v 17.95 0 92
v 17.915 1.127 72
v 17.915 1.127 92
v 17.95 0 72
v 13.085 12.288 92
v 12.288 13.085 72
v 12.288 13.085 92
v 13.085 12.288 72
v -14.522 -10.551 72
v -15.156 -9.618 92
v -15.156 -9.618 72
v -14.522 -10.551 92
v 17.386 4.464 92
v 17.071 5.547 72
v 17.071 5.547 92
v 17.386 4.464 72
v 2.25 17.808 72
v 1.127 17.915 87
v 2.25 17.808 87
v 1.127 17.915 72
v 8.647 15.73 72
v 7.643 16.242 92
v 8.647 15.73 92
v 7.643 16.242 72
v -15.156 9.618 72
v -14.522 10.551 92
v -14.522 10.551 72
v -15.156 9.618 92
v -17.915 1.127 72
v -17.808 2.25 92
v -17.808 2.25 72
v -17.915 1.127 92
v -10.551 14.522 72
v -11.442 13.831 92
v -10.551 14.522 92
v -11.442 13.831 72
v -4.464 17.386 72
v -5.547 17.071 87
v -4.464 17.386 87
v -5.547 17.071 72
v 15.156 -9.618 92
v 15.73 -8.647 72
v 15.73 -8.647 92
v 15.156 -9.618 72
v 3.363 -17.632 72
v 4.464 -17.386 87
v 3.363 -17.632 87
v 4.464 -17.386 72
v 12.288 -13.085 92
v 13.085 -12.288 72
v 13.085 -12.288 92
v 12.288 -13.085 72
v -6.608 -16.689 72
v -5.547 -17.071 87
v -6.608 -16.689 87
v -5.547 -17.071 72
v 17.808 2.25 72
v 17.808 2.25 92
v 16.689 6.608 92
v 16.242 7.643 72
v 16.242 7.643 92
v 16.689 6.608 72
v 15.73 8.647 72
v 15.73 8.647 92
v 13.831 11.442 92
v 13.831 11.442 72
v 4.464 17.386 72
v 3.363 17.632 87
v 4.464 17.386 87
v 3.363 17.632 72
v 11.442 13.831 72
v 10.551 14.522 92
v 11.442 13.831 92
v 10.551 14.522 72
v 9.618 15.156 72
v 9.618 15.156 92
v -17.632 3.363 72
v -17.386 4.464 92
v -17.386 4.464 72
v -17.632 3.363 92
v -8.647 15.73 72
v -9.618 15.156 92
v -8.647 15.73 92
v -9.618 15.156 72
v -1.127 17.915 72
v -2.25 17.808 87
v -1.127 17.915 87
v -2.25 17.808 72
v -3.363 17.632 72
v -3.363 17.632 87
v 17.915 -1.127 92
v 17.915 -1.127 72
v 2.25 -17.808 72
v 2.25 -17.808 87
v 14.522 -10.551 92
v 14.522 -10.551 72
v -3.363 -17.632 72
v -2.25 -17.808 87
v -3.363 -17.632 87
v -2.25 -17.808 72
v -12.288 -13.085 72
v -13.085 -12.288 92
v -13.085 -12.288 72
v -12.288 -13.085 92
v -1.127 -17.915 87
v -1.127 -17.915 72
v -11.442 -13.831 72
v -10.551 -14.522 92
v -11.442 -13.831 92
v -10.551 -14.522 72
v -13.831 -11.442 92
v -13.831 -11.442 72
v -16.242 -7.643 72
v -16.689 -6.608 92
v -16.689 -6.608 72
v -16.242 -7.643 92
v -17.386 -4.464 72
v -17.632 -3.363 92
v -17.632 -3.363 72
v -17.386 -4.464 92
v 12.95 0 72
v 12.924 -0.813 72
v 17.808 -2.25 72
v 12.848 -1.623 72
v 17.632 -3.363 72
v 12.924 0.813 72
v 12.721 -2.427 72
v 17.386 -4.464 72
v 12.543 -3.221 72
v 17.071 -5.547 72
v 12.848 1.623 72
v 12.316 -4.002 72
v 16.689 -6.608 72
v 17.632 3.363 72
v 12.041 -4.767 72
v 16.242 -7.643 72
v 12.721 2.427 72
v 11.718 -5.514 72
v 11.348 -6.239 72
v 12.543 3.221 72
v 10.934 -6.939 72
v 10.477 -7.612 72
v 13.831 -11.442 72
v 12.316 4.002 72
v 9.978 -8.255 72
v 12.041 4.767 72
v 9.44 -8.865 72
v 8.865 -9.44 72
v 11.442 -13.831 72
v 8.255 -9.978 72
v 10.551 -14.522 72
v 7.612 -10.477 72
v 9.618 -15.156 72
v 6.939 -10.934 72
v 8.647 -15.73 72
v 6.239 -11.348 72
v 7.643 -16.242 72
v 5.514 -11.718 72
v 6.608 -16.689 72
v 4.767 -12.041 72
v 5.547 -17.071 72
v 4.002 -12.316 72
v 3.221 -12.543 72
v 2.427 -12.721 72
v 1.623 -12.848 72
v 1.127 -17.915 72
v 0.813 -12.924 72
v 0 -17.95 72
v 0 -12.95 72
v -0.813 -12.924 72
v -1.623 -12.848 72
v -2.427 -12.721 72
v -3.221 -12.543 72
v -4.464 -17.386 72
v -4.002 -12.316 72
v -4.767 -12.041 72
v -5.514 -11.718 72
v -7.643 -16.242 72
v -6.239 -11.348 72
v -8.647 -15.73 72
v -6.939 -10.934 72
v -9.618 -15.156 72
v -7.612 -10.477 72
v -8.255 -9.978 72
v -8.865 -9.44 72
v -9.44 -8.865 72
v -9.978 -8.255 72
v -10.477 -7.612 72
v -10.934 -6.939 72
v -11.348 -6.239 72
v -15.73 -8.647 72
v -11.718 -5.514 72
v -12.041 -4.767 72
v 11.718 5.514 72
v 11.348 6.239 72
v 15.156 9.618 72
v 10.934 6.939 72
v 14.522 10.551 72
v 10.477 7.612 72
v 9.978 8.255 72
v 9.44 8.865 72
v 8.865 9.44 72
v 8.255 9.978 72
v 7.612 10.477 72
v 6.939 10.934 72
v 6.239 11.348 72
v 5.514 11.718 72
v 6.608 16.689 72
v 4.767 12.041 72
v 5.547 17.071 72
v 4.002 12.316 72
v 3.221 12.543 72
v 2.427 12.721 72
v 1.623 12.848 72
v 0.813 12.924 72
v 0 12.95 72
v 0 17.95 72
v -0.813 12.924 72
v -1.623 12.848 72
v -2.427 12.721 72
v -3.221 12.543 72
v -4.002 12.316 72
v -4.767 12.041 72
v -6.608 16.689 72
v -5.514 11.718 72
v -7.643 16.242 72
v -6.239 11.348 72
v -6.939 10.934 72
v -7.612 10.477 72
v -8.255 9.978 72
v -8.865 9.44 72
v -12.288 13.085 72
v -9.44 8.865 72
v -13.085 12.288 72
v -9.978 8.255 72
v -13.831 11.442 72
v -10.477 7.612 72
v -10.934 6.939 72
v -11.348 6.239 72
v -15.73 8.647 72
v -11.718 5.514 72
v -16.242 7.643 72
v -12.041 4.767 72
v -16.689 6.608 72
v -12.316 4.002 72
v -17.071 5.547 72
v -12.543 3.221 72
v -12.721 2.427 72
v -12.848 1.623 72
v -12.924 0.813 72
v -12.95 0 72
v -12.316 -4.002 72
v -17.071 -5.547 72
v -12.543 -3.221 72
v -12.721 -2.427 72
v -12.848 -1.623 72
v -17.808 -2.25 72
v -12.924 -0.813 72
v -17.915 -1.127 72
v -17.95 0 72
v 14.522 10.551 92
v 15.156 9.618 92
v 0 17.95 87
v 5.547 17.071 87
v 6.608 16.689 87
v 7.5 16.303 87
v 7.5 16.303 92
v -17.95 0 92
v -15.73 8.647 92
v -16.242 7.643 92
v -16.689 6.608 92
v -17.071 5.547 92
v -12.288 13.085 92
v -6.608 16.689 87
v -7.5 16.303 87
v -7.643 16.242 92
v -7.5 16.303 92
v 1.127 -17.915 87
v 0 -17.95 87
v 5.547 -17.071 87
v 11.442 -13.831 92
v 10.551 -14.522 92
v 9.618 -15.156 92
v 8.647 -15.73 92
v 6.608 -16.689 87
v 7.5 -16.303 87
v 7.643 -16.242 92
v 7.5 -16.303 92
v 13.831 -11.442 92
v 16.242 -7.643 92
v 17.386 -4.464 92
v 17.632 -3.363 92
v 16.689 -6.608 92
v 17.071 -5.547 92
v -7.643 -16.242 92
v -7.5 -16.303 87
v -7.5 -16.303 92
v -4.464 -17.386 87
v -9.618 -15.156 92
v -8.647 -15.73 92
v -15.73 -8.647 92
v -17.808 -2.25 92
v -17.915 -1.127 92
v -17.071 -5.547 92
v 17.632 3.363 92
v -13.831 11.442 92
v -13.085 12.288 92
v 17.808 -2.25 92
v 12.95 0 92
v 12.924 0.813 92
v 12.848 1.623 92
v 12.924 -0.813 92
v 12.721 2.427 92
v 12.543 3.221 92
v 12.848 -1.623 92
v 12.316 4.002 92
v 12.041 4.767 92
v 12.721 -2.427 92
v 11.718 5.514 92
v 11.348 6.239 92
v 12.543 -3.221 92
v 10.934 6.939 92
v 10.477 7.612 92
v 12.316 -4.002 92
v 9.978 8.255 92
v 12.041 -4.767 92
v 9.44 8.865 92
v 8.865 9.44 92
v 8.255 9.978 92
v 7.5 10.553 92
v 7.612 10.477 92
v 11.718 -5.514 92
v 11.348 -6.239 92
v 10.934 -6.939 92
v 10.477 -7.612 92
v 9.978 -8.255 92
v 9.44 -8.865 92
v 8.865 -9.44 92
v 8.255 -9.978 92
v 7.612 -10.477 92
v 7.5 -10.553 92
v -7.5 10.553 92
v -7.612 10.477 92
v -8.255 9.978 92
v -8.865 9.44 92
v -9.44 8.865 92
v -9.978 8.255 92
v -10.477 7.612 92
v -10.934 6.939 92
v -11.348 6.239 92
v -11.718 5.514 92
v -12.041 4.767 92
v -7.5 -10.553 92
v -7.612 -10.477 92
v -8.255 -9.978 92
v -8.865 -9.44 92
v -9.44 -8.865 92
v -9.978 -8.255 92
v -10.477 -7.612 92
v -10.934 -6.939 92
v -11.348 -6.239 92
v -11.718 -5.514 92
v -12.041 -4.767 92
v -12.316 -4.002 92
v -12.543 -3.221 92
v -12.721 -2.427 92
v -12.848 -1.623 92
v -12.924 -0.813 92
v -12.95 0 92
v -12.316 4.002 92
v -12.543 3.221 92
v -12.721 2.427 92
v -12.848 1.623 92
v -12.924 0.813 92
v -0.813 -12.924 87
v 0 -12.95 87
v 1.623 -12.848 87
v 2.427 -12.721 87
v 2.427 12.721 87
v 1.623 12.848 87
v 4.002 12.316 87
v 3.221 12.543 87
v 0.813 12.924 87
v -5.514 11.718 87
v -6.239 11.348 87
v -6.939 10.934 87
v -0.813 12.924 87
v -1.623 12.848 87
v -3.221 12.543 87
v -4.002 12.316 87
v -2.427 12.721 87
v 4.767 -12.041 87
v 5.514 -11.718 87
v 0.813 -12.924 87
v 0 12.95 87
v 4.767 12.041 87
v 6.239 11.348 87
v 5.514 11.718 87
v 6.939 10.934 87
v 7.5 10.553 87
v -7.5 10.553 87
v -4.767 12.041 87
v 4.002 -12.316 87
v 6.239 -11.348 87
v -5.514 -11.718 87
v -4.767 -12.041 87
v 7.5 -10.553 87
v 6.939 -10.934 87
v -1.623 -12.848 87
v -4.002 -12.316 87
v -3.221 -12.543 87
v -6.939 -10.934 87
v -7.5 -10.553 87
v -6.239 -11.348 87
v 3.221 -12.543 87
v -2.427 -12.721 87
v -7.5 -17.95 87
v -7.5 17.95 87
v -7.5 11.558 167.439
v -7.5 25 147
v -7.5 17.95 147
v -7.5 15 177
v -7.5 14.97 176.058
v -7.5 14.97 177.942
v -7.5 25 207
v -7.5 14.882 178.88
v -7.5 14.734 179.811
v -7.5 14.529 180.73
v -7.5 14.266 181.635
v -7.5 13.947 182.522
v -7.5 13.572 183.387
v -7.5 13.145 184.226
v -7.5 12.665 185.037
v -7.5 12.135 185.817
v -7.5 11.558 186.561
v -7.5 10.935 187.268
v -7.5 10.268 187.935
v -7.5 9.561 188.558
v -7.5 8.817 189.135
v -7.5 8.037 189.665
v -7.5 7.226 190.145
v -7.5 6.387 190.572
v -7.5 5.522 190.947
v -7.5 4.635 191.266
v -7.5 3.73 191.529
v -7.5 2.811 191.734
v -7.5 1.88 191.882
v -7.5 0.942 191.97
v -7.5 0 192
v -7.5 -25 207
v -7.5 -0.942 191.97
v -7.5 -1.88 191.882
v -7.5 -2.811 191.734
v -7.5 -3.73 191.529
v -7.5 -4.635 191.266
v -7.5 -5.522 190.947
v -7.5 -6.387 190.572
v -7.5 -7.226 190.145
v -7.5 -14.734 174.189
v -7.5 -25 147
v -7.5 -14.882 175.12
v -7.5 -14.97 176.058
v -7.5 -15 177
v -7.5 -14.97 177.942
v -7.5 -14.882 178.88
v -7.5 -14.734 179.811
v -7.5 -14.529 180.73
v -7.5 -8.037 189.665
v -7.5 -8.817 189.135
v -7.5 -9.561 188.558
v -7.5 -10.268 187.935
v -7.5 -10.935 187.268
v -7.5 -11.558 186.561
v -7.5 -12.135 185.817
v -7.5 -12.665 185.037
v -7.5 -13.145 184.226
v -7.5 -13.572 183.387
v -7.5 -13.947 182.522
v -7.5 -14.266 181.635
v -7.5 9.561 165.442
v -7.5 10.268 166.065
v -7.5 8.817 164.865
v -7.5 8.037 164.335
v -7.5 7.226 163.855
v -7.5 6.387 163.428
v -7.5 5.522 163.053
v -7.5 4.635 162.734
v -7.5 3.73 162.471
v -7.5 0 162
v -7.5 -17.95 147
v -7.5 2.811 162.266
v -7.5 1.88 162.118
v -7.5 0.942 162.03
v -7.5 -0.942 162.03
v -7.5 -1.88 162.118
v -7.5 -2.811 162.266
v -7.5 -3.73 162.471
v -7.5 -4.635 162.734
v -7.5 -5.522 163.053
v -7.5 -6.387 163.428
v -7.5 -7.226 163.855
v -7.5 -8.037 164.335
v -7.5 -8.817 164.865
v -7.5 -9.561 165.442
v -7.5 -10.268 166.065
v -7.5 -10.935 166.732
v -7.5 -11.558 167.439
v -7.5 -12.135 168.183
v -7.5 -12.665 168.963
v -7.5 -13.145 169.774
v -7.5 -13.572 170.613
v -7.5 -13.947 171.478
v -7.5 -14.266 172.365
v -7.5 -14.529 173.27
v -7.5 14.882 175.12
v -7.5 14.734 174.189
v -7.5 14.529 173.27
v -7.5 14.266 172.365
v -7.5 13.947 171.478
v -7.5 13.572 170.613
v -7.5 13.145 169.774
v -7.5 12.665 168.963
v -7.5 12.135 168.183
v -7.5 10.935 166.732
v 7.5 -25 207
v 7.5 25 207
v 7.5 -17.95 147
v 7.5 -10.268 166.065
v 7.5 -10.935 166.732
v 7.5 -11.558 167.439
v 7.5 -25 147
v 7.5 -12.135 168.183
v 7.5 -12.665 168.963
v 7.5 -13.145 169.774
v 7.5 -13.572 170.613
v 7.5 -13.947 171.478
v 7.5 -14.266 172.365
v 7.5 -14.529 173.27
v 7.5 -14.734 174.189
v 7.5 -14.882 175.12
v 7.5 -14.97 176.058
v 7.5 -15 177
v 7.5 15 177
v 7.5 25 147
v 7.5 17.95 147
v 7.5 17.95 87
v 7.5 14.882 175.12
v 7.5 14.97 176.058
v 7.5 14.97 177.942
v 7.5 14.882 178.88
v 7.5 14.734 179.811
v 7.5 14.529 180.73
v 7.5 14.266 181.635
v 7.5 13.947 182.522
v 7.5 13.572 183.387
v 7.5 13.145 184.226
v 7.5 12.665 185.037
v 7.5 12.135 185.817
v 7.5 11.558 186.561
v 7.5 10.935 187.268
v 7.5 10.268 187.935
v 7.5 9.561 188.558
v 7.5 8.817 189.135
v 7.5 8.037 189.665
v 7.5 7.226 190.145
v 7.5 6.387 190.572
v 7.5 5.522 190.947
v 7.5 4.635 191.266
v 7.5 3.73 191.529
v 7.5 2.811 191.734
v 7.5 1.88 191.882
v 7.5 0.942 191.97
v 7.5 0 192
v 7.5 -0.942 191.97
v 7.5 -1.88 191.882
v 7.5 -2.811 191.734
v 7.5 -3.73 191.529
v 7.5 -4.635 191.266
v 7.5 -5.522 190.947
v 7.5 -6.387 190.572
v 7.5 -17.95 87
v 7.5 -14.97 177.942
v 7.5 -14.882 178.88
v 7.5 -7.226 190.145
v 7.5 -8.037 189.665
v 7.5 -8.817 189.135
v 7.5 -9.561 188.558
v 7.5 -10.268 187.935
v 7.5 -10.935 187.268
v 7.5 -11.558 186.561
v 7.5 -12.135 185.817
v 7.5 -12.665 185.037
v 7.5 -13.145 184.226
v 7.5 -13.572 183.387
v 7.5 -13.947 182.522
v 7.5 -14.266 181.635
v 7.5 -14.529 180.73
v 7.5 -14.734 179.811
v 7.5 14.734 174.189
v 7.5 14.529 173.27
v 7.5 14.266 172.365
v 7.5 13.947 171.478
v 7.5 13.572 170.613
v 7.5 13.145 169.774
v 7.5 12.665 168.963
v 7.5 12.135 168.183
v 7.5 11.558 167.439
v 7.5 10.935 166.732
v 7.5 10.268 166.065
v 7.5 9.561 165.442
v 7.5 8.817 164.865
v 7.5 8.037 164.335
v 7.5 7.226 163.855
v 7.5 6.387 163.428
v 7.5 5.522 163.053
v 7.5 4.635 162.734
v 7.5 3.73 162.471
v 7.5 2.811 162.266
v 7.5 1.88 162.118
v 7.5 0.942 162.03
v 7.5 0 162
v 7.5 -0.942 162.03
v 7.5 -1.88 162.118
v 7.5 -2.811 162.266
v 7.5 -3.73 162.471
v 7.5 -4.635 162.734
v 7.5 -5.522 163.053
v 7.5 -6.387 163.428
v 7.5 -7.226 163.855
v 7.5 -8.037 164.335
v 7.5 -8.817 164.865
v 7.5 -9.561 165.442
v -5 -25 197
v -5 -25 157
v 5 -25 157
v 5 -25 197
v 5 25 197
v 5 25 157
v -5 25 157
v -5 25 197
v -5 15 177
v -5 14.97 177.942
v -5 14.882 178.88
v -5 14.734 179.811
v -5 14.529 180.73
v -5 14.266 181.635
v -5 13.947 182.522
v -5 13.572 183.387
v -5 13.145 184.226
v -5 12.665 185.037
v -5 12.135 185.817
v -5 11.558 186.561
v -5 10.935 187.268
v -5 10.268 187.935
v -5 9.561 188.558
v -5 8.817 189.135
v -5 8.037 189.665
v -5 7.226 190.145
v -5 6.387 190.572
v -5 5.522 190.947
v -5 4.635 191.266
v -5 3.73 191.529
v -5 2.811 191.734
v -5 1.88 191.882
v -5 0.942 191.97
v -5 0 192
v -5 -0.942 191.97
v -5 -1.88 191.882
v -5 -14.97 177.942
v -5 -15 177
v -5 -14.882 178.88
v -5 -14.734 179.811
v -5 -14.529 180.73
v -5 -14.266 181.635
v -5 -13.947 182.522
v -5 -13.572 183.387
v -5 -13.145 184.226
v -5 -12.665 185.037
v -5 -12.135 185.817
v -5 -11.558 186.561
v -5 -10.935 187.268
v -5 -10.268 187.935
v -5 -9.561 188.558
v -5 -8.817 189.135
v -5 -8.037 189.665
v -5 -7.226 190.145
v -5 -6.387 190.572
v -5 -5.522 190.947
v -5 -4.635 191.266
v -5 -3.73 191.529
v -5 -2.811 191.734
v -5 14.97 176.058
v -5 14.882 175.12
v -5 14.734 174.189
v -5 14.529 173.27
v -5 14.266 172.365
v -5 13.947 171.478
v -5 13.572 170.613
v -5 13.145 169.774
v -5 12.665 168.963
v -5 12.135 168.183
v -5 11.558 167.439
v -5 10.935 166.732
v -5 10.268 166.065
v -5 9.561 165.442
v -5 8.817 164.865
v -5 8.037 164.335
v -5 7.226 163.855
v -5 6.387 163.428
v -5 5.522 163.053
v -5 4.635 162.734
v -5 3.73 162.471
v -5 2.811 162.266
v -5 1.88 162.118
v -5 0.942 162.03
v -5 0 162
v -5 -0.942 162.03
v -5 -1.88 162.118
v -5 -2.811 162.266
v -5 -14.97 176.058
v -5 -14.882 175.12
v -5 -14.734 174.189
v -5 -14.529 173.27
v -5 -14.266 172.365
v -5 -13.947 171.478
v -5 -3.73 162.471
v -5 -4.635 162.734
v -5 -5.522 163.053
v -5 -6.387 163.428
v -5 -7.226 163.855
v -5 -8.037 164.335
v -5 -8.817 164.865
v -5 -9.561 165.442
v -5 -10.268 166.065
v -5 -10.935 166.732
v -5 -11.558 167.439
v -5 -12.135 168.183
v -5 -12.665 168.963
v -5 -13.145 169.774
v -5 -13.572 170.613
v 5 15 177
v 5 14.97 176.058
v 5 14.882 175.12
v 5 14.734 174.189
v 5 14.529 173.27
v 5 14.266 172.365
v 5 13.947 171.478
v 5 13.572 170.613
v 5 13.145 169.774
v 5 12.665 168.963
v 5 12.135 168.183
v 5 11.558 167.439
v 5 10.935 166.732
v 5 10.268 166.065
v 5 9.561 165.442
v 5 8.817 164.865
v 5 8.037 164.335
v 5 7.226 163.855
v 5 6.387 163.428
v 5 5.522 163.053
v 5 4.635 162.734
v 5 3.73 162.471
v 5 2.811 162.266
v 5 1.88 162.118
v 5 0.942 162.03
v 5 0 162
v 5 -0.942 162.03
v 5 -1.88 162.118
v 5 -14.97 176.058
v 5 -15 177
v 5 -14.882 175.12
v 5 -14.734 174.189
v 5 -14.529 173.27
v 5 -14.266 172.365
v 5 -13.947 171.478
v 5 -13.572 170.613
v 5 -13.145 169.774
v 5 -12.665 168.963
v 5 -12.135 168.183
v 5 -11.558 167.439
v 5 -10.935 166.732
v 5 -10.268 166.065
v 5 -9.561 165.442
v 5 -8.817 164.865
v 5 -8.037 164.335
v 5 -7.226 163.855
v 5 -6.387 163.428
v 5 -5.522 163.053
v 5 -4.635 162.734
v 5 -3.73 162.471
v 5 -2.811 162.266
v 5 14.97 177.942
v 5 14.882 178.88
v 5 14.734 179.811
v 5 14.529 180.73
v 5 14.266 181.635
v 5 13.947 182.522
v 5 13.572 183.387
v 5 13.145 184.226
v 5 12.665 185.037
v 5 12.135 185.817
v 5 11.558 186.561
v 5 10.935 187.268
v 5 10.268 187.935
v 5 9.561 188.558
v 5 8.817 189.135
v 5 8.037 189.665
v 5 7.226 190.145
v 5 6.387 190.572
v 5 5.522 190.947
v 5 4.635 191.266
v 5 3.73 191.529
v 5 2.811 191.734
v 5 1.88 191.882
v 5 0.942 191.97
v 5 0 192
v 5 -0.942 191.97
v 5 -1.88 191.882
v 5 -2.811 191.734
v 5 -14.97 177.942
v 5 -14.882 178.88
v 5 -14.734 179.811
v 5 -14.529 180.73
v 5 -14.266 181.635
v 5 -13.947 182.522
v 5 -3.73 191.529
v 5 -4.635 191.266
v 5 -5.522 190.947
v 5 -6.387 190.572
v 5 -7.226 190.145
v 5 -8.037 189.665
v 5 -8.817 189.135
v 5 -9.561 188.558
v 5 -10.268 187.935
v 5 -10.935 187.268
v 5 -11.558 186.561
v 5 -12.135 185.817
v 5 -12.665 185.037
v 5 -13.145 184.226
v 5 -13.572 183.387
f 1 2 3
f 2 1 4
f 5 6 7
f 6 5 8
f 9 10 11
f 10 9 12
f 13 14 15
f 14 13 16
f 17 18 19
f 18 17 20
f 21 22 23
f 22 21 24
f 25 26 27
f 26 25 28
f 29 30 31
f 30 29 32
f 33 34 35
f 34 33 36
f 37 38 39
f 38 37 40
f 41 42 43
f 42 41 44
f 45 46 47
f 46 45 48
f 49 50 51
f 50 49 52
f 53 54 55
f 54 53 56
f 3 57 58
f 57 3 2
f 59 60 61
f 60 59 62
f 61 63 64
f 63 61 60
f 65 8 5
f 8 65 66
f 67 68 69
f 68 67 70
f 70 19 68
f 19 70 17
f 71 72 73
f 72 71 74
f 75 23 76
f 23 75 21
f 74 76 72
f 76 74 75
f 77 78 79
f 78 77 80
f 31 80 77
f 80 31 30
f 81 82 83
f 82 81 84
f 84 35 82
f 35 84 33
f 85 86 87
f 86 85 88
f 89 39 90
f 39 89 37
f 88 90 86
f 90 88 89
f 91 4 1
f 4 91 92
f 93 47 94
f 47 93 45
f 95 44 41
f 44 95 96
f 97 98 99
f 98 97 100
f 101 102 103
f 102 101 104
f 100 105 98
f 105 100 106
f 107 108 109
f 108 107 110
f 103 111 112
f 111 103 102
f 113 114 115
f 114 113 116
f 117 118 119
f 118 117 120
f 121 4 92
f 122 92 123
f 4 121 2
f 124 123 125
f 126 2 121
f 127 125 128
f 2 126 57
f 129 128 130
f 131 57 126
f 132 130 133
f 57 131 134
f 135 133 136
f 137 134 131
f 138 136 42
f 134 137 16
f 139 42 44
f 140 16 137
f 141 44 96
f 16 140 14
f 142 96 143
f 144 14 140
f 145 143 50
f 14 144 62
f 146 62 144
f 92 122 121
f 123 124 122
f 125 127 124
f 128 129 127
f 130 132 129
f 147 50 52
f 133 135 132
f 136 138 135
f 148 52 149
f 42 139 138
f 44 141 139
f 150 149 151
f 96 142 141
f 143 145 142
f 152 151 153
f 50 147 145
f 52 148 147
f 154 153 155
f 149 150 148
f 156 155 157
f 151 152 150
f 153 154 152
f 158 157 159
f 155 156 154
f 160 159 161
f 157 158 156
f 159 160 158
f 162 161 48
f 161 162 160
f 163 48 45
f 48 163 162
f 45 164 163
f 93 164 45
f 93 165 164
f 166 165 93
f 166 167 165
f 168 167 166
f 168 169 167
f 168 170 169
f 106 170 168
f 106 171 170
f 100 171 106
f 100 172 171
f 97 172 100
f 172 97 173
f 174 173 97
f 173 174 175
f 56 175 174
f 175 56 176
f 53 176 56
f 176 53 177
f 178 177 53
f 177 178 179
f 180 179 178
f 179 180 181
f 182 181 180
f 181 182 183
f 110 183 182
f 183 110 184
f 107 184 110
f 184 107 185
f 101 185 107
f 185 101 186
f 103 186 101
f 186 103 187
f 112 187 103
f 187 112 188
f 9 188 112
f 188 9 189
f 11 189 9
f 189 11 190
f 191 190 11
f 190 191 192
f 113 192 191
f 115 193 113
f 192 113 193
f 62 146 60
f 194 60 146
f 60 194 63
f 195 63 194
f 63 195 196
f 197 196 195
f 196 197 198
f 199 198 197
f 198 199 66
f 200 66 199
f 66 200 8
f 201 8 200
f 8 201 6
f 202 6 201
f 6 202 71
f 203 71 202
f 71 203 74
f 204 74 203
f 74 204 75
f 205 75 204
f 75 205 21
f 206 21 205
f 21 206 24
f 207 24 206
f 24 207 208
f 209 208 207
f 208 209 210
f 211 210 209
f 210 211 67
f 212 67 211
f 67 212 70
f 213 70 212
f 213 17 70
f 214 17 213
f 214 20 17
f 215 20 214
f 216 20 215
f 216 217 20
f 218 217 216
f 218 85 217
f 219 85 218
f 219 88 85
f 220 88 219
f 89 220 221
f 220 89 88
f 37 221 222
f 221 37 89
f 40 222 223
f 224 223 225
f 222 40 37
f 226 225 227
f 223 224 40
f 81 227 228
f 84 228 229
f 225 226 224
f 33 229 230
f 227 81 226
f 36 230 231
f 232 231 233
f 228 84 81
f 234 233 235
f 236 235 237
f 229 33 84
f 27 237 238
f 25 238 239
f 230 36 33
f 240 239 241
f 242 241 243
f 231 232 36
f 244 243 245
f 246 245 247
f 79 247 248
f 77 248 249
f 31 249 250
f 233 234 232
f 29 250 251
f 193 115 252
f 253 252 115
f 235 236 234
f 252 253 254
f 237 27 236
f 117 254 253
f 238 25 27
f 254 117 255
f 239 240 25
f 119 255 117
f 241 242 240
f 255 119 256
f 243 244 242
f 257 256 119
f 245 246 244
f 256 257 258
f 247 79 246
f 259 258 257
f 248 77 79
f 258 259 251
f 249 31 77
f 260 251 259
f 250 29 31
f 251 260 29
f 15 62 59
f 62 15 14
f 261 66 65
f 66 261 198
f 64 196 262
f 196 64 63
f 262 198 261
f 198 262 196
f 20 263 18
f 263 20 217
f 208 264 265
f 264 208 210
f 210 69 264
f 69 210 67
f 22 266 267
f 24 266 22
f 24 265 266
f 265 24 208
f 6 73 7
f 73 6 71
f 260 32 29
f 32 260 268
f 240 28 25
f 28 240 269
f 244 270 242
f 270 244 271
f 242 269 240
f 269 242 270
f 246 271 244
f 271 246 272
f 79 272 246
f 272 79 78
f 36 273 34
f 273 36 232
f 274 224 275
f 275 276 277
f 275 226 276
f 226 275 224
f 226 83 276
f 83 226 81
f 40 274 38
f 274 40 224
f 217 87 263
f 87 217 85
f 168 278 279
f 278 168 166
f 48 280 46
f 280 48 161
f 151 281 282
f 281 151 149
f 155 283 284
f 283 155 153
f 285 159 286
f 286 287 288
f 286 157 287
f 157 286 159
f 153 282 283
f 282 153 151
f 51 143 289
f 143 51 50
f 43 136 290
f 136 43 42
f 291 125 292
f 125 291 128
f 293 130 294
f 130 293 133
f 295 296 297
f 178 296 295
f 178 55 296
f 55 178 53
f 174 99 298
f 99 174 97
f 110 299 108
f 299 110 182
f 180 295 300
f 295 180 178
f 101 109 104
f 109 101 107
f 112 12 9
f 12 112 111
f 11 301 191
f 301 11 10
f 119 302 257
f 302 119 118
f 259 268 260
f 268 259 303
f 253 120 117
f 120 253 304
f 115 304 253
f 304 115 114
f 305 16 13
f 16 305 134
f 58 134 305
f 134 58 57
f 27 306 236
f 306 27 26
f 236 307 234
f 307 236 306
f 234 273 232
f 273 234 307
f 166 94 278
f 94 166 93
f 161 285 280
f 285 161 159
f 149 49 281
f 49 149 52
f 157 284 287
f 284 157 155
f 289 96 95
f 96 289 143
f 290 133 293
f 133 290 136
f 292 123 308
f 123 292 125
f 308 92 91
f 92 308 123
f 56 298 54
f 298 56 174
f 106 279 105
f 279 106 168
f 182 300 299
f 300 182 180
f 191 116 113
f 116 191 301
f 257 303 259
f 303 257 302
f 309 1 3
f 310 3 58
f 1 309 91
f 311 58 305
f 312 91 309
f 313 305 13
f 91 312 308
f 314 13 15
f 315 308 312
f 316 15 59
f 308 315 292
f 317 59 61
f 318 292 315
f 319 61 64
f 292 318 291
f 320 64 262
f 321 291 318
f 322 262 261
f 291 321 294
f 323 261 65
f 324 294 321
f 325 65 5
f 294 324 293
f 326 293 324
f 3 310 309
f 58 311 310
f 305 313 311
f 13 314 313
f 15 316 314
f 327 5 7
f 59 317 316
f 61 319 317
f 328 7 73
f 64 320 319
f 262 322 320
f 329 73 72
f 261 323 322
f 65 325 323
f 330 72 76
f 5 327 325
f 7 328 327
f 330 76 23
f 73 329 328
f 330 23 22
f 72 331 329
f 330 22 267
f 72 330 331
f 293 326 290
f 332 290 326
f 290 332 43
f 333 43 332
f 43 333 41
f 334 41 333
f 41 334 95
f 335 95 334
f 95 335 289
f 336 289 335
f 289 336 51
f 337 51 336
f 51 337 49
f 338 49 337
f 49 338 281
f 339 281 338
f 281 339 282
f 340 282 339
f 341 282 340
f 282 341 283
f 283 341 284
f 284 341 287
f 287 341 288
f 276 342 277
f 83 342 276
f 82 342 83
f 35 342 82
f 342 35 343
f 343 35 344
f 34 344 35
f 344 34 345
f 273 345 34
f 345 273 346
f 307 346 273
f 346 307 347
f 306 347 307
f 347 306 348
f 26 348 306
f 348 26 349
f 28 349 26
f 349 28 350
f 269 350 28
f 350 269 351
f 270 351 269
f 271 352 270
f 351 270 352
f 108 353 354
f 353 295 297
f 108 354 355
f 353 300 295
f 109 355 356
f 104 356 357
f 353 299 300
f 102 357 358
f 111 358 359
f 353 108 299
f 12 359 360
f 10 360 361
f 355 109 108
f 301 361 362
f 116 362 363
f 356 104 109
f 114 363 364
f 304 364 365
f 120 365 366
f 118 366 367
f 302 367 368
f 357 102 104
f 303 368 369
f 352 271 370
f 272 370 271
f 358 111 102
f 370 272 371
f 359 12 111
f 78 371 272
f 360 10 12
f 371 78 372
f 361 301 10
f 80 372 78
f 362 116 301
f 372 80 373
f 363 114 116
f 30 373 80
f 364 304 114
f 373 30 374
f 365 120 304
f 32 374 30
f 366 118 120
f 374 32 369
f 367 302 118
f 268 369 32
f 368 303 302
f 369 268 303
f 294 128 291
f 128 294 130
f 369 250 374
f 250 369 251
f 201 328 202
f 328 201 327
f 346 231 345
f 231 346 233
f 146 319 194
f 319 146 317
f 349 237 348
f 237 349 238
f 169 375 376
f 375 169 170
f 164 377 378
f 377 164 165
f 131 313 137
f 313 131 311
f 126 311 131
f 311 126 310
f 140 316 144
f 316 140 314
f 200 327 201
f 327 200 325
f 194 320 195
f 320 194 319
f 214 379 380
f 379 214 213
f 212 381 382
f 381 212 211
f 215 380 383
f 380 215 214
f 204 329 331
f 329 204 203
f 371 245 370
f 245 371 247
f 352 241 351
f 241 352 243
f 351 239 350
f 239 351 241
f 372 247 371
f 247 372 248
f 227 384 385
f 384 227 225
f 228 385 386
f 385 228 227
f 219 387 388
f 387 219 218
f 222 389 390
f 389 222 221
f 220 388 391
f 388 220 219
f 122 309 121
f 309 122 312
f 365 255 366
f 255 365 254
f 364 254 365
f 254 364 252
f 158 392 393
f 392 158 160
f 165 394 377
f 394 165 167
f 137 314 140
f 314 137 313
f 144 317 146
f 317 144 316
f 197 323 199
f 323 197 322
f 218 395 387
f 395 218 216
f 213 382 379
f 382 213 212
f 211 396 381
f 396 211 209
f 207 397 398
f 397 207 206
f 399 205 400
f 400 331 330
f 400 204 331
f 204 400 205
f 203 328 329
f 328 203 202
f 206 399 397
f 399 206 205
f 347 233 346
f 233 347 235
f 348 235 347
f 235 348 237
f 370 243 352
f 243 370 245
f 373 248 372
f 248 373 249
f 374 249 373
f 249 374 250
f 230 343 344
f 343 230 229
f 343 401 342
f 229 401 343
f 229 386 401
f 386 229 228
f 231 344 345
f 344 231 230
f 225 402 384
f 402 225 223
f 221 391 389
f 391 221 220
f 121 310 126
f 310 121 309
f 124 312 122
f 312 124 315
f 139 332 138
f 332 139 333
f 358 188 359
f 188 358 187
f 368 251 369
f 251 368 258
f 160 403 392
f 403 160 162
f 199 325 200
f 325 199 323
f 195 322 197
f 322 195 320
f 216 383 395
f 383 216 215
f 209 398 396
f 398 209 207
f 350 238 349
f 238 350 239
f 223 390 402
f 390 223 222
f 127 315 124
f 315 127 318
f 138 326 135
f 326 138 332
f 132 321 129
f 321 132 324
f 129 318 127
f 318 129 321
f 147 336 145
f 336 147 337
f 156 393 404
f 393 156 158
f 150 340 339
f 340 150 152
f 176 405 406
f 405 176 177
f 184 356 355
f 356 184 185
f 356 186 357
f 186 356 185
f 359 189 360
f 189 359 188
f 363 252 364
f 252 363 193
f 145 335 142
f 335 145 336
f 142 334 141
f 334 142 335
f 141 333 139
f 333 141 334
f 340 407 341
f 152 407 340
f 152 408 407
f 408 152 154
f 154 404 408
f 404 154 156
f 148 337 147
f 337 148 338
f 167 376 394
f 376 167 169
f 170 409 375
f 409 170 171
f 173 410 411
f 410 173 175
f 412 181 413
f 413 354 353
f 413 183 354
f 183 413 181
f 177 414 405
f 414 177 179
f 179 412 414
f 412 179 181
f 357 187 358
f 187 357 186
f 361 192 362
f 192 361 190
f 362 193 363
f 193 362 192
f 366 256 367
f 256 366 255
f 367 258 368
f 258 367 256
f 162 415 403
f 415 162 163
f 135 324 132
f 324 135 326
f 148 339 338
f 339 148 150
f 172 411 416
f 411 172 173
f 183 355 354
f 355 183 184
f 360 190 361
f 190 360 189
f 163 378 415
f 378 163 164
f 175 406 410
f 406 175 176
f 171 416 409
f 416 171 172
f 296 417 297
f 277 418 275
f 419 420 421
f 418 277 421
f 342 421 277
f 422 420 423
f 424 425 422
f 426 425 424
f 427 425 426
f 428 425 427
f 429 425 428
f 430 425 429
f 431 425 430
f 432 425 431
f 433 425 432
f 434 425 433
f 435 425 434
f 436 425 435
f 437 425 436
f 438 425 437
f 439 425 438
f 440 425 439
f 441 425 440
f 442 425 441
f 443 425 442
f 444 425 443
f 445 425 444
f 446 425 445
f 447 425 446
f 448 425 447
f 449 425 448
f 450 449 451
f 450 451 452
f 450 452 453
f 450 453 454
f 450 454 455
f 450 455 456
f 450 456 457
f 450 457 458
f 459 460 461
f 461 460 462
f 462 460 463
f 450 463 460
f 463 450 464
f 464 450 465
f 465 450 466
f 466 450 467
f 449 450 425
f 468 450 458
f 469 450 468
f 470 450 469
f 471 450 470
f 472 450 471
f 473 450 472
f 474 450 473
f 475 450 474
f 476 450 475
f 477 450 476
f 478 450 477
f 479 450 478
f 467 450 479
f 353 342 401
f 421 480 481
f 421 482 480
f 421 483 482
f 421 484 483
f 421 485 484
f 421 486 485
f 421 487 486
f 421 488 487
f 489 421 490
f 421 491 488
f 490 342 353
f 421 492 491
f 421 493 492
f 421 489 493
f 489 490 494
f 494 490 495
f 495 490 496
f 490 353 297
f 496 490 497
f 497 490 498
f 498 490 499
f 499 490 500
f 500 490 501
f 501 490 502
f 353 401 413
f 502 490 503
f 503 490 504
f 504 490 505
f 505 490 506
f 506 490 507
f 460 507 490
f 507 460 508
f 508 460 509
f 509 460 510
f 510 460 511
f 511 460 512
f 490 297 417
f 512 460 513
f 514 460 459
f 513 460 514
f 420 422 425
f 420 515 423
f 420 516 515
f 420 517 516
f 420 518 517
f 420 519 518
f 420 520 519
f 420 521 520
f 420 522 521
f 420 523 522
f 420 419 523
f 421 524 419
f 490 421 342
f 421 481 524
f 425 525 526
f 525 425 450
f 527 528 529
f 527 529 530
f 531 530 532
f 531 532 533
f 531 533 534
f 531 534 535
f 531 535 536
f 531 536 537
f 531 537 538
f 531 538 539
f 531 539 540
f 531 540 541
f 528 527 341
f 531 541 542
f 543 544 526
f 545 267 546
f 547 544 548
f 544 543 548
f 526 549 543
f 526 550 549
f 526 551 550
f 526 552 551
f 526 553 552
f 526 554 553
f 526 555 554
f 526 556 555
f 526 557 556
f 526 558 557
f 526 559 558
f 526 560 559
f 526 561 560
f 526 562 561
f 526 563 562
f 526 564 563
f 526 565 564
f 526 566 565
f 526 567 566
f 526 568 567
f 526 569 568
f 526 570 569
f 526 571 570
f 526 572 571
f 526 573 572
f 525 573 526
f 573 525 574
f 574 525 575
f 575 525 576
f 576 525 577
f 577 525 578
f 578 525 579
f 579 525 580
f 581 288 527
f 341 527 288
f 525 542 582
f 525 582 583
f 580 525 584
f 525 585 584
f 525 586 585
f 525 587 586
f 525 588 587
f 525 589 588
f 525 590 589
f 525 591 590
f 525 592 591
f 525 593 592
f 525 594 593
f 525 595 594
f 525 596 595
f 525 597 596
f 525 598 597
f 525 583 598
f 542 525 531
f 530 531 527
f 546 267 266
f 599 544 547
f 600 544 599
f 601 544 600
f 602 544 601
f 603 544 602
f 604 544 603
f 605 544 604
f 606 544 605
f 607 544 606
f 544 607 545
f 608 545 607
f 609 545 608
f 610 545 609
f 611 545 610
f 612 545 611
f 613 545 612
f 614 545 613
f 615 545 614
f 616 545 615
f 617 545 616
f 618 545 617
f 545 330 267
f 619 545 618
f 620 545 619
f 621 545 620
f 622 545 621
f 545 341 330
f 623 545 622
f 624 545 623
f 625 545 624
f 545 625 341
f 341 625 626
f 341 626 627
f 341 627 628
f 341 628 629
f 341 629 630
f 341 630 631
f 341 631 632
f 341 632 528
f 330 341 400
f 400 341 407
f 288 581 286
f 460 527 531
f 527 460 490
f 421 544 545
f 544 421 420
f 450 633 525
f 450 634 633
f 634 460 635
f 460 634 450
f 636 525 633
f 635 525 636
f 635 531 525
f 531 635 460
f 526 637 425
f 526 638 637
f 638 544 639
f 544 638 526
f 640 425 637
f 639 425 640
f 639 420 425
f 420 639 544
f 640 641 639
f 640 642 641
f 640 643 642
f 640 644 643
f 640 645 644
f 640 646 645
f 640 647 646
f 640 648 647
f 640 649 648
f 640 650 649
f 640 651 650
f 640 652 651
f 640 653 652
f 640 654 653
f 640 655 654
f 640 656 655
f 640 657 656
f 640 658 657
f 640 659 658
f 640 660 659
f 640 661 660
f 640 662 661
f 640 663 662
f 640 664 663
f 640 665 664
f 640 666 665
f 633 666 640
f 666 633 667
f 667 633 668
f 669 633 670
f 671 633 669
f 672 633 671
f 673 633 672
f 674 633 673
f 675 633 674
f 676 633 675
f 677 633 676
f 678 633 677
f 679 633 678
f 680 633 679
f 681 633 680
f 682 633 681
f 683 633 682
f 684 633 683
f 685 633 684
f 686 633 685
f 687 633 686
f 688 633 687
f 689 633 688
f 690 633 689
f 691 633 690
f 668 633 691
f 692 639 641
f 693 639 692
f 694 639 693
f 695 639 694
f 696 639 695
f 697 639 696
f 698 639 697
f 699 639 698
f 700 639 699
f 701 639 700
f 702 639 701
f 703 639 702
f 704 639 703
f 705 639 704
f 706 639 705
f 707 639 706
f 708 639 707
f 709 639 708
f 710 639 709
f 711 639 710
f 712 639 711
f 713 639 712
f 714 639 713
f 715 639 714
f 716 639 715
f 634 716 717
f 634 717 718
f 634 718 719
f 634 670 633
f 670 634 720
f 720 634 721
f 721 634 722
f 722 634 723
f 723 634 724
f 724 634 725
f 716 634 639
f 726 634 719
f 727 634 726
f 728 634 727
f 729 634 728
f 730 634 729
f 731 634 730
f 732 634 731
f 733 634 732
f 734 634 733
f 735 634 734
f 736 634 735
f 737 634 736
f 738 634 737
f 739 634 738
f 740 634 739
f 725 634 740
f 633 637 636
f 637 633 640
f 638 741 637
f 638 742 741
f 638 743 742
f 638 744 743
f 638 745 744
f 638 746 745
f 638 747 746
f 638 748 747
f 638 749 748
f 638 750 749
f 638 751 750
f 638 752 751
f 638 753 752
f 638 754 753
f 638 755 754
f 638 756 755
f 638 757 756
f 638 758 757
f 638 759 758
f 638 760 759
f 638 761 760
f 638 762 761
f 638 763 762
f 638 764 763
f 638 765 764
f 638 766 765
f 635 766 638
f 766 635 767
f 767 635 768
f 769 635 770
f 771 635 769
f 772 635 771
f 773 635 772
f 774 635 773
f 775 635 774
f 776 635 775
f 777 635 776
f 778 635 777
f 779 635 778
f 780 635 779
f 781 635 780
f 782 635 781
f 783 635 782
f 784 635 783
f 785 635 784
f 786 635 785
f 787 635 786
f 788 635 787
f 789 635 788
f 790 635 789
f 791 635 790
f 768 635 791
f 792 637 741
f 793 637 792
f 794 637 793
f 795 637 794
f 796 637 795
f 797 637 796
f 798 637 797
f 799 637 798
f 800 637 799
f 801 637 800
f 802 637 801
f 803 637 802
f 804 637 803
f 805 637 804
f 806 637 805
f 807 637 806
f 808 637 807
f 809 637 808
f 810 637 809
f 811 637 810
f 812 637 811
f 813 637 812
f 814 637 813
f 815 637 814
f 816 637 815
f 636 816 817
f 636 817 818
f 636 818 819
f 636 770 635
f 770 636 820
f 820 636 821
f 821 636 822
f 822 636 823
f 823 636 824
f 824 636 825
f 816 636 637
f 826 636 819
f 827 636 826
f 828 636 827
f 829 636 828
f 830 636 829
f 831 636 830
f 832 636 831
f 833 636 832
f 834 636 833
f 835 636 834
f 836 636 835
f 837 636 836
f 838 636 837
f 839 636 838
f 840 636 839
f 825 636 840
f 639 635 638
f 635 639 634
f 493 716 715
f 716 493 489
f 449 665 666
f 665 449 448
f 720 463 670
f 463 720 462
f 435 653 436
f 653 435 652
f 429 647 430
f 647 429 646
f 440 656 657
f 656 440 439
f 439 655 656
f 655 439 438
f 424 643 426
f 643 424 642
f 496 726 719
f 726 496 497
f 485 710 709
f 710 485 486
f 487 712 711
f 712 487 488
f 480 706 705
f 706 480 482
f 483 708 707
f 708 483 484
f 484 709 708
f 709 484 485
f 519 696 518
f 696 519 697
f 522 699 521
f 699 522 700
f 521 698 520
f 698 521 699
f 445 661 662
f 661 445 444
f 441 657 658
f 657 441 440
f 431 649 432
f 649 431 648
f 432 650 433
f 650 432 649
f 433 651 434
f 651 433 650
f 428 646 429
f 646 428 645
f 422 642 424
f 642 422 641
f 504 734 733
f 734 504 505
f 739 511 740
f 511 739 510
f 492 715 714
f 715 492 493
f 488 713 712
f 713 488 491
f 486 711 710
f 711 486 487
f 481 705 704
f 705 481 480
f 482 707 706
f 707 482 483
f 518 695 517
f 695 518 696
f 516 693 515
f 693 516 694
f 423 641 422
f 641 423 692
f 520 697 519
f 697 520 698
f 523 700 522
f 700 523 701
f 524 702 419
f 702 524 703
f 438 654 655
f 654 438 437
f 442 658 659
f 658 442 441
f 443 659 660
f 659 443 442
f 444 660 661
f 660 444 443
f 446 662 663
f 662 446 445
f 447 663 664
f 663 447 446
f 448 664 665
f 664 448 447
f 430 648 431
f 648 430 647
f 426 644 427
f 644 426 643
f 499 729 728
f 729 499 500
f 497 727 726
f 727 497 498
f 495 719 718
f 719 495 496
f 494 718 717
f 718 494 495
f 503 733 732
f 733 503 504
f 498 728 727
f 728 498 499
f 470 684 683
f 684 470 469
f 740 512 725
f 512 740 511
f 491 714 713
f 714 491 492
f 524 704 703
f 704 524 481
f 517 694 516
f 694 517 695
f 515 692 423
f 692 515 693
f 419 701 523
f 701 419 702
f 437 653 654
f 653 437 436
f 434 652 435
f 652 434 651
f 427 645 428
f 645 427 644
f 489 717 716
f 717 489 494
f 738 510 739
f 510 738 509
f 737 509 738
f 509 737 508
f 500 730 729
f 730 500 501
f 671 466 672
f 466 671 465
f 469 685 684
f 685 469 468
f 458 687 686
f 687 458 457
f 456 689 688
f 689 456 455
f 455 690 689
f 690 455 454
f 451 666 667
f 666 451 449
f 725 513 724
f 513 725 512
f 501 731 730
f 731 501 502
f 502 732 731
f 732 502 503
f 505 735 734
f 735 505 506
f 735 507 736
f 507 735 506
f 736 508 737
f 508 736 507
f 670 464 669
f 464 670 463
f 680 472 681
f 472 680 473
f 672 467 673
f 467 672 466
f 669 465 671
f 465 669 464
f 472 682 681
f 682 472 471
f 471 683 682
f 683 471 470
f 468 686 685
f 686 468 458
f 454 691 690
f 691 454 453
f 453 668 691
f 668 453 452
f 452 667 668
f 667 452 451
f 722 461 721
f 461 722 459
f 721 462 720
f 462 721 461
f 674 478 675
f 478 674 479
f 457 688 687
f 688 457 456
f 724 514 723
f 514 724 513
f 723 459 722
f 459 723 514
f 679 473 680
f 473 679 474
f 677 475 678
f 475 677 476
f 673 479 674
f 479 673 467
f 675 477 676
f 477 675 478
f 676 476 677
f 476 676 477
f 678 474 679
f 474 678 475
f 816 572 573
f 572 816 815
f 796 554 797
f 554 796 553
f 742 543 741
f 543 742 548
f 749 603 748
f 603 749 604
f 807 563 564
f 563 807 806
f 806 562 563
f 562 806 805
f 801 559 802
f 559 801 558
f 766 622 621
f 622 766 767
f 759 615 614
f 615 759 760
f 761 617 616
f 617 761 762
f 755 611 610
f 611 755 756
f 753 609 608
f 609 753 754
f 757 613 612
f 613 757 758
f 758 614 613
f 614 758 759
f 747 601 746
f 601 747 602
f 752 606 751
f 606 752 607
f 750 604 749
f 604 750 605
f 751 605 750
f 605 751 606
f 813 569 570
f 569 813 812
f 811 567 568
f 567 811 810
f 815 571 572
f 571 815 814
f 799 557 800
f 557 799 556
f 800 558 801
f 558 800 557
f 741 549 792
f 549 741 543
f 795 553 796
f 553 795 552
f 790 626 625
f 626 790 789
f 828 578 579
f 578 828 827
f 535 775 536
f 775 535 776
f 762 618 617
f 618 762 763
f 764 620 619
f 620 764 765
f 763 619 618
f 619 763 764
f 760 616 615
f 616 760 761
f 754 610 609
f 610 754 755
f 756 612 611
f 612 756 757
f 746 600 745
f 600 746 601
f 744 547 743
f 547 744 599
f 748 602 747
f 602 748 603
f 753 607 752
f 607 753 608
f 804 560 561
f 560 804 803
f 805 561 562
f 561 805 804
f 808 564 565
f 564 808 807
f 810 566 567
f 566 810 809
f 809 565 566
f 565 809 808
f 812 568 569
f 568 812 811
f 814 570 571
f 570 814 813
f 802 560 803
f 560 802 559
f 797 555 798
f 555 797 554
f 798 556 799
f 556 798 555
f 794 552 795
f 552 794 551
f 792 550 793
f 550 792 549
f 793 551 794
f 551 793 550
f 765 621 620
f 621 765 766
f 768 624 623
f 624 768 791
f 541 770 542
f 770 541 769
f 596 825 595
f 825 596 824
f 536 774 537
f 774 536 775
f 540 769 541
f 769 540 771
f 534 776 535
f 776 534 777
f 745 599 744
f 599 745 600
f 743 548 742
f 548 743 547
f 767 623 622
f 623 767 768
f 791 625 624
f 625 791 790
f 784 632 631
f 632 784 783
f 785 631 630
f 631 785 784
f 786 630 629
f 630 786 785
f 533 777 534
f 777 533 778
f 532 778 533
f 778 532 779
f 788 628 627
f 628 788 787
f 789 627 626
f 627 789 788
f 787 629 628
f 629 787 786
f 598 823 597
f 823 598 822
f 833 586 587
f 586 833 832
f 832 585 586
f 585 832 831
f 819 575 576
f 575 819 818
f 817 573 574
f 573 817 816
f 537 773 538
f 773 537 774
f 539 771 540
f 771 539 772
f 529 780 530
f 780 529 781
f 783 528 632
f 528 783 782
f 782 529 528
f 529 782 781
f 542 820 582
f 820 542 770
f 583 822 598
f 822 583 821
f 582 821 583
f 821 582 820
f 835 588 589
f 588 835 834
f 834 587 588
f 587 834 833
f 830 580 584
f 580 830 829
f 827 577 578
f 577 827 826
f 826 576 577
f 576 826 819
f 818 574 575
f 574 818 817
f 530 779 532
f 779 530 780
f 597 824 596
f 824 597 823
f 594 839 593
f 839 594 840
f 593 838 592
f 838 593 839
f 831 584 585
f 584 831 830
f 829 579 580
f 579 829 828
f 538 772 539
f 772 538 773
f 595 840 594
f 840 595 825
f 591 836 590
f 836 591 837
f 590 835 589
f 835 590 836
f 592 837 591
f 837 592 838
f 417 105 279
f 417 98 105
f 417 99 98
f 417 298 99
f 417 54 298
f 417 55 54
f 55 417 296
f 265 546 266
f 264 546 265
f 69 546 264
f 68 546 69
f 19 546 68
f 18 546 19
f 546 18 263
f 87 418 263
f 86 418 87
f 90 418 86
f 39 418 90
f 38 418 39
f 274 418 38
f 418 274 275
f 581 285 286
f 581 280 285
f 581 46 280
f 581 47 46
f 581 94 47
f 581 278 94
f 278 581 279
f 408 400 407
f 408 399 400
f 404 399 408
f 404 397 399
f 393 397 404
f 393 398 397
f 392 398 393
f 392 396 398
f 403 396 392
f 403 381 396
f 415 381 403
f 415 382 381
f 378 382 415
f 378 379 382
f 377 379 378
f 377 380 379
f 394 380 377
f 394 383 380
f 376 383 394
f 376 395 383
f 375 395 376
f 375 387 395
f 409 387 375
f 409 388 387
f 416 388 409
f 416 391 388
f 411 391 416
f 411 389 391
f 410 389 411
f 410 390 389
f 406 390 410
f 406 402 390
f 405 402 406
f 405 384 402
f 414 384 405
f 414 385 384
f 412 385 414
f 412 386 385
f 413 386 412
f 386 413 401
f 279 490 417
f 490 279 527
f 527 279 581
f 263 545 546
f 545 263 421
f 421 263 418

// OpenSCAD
// file: funcSuporteDoCuboBaixo_v2.scad
use <funcoes_GFCx.scad>
module funcSuporteDoCuboBaixo_v2(){
    // ----- ----- ----- Declaração de Variáveis ----- ----- ----- //
    res=100;

    // ----- ----- ----- Declaração de Funções ----- ----- ----- //
    
    //funcao_2d_array_cilindros(r,d,h,nx,ny,geo,res,nome="Conjunto 1")

    //suporte do cubo
    difference(){
        translate([-2,-2,0])cube([54,54,120]);
        #translate([8-34/2,-2-54/2,70])cube([2*34,2*54,2*40]);
        #translate([8,-2,10])cube([34,54,50]);
        #translate([-2,8,10])cube([54,34,50]);
        #translate([-2,8,70])cube([54,34,40]);
    }
     difference(){
        translate([-25,-25,0])cube([100,100,15]);
        //#translate([-12.5,-12.5,0])cylinder(h=15, r=3.3);
        //#translate([62.5,62.5,0])cylinder(h=15, r=3.3);
        //#translate([62.5,-12.5,0])cylinder(h=15, r=3.3);
        //#translate([-12.5,62.5,0])cylinder(h=15, r=3.3);
        #translate([-12.5,-12.5,0])
        #funcao_2d_array_cilindros(7/2,25.2,15,4,4,1,res,nome="Base do Suporte");
    }

    //base
    rotate(a=[0,0,0])translate([-2,8,20])
    difference(){
        rotate(a=[90,30,0])translate([0,0,0])cylinder(10,10,10,$fn=3);
        #translate([0,-10,-5])cube([10,10,15]);
    }
    rotate(a=[0,0,90])translate([-2,2,20])
    difference(){
        rotate(a=[90,30,0])translate([0,0,0])cylinder(10,10,10,$fn=3);
        #translate([0,-10,-5])cube([10,10,15]);
    }
    translate([52,52,20])rotate(a=[0,0,270])
    difference(){
        rotate(a=[90,30,0])translate([0,0,0])cylinder(10,10,10,$fn=3);
        #translate([0,-10,-5])cube([10,10,15]);
    }
    translate([8,52,20])rotate(a=[0,0,270])
    difference(){
        rotate(a=[90,30,0])translate([0,0,0])cylinder(10,10,10,$fn=3);
        #translate([0,-10,-5])cube([10,10,15]);
    }
    rotate(a=[0,0,0])translate([-2,52,20])
    difference(){
        rotate(a=[90,30,0])translate([0,0,0])cylinder(10,10,10,$fn=3);
        #translate([0,-10,-5])cube([10,10,15]);
    }
    rotate(a=[0,0,90])translate([-2,-42,20])
    difference(){
        rotate(a=[90,30,0])translate([0,0,0])cylinder(10,10,10,$fn=3);
        #translate([0,-10,-5])cube([10,10,15]);
    }
    translate([52,-2,20])rotate(a=[0,0,180])
    difference(){
        rotate(a=[90,30,0])translate([0,0,0])cylinder(10,10,10,$fn=3);
        #translate([0,-10,-5])cube([10,10,15]);
    }
    translate([52,42,20])rotate(a=[0,0,180])
    difference(){
        rotate(a=[90,30,0])translate([0,0,0])cylinder(10,10,10,$fn=3);
        #translate([0,-10,-5])cube([10,10,15]);
    }
}

translate([25,25,0])
translate([-50,-50,0])
funcSuporteDoCuboBaixo_v2();
// main file
// ----- ----- ----- Declaração de Variáveis ----- ----- ----- //
res=100;
folga1=0.125;

cubox=50-35;
cuboy=50;
cuboz=60;
rBob=15;
esp=2.5;

rInt=10.45;
rExt=12.45;
alt=15;

supr=18;
supalt=5;

// Estamos nos referindo aqui ao encaixe do interior
encx=54.5;
ency=54.5;
encz=10;
espenc=2;

// ----- ----- ----- Declaração de Funções ----- ----- ----- //
use <funcoes_GFCx.scad>
use <funcSuporteDoCuboBaixo_v2.scad>

// ----- ----- ----- MAIN ----- ----- ----- //
//Encaixe Cilíndrico Real
/*difference(){
    cylinder(alt,rExt,rExt,$fn=res);
    #cylinder(alt,rInt,rInt,$fn=res);
}*/


translate([0,0,120]){
    // Encaixe Cilíndrico de Sobra
    translate([0,0,encz+espenc-120+70-encz])
    difference(){
        cylinder(alt+5,rExt+0.5+2*esp,rExt+0.5+2*esp,$fn=res);
        #cylinder(alt+5,rExt+0.5,rExt+0.5,$fn=res);
    }
    translate([-cubox/2,-(rExt+0.5+2*esp),encz+espenc-120+70-encz+alt])
    cube([cubox,2*(rExt+0.5+2*esp),-(-120+70-encz)]);

    // Novo Cubo
    translate([-cubox/2,-cuboy/2,alt+encz+espenc]){
        difference(){
            cube([cubox,cuboy,cuboz]);
            #translate([esp,esp,4*esp])cube([cubox-2*esp,cuboy-2*esp,cuboz-8*esp]);
            
            #translate([esp,2*esp,4*esp])cube([cubox-2*esp,cuboy-2*esp,cuboz-8*esp]);
            #translate([esp,0,4*esp])cube([cubox-2*esp,cuboy-2*esp,cuboz-8*esp]);
            
            #translate([0,cuboy/2,cuboz/2])
            #rotate([0,90,0])
            #cylinder(esp,rBob,rBob,$fn=res);
            
            #translate([cubox-esp,cuboy/2,cuboz/2])
            #rotate([0,90,0])
            #cylinder(esp,rBob,rBob,$fn=res);
        }
    }
}
